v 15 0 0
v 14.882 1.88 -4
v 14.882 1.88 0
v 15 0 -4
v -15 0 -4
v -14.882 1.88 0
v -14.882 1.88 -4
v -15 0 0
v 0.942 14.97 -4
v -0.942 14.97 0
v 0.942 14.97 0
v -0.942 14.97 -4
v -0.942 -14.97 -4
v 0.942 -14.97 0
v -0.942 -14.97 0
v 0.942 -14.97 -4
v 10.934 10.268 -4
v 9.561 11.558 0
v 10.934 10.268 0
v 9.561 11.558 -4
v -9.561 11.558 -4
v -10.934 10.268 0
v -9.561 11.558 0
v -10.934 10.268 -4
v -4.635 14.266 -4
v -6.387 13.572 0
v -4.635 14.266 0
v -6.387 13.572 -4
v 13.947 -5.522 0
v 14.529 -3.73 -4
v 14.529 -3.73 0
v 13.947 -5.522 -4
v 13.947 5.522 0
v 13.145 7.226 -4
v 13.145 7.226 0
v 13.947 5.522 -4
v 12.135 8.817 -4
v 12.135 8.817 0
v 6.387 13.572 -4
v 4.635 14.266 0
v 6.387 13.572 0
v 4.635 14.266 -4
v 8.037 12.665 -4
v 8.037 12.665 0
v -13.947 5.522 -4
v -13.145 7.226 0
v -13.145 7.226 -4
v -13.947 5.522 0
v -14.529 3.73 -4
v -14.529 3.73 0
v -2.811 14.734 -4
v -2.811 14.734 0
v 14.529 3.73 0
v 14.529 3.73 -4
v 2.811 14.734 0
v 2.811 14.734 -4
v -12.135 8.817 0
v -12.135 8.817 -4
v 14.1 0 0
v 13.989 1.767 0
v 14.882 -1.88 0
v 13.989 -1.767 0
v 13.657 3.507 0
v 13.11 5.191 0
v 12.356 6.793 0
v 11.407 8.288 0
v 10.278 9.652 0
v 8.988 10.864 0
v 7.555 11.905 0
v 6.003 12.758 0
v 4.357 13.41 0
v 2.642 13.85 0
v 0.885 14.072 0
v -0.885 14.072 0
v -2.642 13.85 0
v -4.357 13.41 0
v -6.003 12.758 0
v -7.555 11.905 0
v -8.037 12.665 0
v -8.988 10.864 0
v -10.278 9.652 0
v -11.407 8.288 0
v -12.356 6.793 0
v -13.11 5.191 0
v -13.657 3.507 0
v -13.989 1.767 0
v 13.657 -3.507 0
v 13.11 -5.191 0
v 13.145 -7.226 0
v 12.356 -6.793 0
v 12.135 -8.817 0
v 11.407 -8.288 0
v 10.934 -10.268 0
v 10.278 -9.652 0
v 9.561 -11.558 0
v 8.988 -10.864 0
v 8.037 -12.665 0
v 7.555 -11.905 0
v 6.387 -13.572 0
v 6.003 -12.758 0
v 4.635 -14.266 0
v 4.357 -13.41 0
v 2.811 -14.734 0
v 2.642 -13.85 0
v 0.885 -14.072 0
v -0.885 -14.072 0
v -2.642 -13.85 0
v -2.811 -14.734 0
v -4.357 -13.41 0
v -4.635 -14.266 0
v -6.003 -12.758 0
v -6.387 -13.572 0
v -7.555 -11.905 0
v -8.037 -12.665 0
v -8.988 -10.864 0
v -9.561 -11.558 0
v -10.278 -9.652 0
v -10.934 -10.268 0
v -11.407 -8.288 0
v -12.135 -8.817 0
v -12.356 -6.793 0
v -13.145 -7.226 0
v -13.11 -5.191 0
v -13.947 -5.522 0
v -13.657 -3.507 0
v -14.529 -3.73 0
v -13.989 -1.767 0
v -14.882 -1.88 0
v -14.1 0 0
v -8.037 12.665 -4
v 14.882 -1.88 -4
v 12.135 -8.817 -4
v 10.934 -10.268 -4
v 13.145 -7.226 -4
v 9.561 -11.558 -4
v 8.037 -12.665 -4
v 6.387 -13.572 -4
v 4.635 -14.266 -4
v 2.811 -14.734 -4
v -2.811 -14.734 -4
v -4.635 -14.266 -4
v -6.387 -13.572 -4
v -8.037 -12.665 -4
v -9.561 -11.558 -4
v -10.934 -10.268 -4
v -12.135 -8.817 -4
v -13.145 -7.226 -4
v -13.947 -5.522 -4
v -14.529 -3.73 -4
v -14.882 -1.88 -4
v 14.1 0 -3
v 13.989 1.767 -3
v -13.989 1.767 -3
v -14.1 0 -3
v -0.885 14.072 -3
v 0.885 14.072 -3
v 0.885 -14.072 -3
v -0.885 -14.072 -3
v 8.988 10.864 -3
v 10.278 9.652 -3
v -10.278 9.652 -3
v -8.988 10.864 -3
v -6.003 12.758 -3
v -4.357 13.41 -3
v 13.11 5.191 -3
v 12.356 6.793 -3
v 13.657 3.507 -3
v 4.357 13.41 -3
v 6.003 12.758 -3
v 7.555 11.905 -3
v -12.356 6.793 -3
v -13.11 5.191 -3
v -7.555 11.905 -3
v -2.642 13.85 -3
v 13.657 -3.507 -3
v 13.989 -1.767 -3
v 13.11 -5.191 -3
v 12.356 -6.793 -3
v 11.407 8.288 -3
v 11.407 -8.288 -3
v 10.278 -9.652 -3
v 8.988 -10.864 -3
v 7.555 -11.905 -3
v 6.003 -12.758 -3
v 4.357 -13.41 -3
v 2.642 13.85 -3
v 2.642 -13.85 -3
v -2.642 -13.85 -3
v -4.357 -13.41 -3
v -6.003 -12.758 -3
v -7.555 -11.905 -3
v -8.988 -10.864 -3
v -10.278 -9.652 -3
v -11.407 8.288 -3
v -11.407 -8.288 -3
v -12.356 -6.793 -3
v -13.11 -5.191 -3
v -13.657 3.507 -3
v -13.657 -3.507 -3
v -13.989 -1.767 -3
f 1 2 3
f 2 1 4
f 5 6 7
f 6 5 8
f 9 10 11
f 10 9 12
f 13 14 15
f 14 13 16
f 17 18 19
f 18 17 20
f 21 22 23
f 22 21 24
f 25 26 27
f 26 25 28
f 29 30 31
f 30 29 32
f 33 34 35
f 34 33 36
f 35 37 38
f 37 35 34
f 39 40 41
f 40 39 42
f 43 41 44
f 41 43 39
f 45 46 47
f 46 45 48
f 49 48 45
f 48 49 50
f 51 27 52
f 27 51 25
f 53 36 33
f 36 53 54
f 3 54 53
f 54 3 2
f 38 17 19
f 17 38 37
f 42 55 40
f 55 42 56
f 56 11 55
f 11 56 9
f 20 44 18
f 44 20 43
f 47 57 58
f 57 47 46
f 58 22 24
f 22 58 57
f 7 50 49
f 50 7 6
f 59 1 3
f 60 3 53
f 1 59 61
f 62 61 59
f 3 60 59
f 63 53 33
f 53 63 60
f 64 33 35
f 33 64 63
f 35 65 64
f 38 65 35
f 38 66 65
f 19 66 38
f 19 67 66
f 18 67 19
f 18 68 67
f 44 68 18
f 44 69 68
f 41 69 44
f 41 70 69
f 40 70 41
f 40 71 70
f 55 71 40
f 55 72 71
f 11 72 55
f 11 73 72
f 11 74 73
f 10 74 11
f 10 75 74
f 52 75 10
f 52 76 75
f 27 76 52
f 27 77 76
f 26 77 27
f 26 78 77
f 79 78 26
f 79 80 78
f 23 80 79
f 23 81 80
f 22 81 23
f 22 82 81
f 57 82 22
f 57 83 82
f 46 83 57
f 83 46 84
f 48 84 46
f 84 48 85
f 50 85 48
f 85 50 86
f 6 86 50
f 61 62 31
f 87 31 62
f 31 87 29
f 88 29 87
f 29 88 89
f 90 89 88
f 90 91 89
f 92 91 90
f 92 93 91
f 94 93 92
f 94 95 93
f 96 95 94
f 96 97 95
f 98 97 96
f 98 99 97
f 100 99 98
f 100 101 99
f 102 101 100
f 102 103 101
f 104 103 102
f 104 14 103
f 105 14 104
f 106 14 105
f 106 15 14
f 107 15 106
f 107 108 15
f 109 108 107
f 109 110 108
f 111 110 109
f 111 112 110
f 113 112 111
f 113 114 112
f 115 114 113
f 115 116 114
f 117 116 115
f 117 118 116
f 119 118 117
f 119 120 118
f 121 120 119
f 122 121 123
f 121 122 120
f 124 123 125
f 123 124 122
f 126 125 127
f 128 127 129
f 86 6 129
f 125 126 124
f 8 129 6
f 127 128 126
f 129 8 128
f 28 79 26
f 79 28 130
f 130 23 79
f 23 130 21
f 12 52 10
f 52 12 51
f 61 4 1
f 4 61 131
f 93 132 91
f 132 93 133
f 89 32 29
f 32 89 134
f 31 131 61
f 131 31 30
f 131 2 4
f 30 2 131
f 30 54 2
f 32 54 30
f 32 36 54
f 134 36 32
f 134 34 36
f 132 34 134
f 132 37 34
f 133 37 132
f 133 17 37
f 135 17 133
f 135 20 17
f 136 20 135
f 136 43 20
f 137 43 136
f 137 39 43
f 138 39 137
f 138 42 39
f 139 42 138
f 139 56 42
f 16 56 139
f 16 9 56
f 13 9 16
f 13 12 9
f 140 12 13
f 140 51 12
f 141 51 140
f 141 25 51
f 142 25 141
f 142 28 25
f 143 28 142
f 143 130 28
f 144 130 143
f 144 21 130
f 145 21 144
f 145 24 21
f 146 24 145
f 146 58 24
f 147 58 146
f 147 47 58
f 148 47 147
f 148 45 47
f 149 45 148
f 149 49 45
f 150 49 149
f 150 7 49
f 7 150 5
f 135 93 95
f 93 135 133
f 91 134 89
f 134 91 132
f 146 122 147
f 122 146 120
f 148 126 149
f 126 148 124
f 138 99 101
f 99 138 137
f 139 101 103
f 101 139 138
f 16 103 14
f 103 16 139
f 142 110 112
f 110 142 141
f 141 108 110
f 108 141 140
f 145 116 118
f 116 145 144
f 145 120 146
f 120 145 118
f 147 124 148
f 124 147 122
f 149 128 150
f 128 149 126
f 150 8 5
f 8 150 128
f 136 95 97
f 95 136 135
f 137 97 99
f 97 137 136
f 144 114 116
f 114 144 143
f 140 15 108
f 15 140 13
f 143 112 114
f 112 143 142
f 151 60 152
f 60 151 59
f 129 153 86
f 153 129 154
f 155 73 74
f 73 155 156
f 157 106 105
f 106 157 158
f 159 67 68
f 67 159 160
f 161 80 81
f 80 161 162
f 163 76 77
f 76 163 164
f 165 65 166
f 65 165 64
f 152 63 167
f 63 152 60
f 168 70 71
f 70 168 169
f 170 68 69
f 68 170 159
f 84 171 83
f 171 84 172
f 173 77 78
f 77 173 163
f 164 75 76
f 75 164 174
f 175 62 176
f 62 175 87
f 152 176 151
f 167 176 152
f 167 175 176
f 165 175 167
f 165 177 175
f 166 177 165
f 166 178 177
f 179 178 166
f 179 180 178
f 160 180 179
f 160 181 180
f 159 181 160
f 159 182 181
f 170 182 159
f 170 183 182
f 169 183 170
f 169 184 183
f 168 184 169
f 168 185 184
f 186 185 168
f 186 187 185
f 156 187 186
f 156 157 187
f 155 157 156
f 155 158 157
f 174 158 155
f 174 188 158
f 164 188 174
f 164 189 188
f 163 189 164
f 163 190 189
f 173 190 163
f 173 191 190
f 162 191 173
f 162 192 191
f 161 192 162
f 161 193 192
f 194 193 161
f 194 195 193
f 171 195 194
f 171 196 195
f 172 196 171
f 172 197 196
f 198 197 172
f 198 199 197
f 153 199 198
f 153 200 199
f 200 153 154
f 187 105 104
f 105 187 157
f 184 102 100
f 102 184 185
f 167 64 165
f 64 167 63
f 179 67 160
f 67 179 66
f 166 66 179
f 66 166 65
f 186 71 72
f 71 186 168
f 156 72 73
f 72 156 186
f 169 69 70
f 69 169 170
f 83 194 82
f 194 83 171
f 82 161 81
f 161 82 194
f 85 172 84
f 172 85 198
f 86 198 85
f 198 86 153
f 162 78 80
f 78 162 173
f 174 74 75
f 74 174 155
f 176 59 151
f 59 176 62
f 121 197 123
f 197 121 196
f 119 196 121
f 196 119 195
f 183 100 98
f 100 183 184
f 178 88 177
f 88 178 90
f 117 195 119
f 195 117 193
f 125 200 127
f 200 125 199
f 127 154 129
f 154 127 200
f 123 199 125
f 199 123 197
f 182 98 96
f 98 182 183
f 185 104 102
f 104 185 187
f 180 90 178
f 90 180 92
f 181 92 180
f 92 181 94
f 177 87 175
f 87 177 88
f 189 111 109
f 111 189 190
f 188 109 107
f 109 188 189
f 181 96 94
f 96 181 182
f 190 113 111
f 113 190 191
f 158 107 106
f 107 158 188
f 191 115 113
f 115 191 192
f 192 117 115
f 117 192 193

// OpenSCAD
$fn = 50;


difference() {
	union() {
		translate(v = [0, 0, -4.0000000000]) {
			cylinder(h = 4, r = 15.0000000000);
		}
	}
	union() {
		#translate(v = [0, 0, -3.0000000000]) {
			cylinder(h = 3, r = 14.1000000000);
		}
	}
}
